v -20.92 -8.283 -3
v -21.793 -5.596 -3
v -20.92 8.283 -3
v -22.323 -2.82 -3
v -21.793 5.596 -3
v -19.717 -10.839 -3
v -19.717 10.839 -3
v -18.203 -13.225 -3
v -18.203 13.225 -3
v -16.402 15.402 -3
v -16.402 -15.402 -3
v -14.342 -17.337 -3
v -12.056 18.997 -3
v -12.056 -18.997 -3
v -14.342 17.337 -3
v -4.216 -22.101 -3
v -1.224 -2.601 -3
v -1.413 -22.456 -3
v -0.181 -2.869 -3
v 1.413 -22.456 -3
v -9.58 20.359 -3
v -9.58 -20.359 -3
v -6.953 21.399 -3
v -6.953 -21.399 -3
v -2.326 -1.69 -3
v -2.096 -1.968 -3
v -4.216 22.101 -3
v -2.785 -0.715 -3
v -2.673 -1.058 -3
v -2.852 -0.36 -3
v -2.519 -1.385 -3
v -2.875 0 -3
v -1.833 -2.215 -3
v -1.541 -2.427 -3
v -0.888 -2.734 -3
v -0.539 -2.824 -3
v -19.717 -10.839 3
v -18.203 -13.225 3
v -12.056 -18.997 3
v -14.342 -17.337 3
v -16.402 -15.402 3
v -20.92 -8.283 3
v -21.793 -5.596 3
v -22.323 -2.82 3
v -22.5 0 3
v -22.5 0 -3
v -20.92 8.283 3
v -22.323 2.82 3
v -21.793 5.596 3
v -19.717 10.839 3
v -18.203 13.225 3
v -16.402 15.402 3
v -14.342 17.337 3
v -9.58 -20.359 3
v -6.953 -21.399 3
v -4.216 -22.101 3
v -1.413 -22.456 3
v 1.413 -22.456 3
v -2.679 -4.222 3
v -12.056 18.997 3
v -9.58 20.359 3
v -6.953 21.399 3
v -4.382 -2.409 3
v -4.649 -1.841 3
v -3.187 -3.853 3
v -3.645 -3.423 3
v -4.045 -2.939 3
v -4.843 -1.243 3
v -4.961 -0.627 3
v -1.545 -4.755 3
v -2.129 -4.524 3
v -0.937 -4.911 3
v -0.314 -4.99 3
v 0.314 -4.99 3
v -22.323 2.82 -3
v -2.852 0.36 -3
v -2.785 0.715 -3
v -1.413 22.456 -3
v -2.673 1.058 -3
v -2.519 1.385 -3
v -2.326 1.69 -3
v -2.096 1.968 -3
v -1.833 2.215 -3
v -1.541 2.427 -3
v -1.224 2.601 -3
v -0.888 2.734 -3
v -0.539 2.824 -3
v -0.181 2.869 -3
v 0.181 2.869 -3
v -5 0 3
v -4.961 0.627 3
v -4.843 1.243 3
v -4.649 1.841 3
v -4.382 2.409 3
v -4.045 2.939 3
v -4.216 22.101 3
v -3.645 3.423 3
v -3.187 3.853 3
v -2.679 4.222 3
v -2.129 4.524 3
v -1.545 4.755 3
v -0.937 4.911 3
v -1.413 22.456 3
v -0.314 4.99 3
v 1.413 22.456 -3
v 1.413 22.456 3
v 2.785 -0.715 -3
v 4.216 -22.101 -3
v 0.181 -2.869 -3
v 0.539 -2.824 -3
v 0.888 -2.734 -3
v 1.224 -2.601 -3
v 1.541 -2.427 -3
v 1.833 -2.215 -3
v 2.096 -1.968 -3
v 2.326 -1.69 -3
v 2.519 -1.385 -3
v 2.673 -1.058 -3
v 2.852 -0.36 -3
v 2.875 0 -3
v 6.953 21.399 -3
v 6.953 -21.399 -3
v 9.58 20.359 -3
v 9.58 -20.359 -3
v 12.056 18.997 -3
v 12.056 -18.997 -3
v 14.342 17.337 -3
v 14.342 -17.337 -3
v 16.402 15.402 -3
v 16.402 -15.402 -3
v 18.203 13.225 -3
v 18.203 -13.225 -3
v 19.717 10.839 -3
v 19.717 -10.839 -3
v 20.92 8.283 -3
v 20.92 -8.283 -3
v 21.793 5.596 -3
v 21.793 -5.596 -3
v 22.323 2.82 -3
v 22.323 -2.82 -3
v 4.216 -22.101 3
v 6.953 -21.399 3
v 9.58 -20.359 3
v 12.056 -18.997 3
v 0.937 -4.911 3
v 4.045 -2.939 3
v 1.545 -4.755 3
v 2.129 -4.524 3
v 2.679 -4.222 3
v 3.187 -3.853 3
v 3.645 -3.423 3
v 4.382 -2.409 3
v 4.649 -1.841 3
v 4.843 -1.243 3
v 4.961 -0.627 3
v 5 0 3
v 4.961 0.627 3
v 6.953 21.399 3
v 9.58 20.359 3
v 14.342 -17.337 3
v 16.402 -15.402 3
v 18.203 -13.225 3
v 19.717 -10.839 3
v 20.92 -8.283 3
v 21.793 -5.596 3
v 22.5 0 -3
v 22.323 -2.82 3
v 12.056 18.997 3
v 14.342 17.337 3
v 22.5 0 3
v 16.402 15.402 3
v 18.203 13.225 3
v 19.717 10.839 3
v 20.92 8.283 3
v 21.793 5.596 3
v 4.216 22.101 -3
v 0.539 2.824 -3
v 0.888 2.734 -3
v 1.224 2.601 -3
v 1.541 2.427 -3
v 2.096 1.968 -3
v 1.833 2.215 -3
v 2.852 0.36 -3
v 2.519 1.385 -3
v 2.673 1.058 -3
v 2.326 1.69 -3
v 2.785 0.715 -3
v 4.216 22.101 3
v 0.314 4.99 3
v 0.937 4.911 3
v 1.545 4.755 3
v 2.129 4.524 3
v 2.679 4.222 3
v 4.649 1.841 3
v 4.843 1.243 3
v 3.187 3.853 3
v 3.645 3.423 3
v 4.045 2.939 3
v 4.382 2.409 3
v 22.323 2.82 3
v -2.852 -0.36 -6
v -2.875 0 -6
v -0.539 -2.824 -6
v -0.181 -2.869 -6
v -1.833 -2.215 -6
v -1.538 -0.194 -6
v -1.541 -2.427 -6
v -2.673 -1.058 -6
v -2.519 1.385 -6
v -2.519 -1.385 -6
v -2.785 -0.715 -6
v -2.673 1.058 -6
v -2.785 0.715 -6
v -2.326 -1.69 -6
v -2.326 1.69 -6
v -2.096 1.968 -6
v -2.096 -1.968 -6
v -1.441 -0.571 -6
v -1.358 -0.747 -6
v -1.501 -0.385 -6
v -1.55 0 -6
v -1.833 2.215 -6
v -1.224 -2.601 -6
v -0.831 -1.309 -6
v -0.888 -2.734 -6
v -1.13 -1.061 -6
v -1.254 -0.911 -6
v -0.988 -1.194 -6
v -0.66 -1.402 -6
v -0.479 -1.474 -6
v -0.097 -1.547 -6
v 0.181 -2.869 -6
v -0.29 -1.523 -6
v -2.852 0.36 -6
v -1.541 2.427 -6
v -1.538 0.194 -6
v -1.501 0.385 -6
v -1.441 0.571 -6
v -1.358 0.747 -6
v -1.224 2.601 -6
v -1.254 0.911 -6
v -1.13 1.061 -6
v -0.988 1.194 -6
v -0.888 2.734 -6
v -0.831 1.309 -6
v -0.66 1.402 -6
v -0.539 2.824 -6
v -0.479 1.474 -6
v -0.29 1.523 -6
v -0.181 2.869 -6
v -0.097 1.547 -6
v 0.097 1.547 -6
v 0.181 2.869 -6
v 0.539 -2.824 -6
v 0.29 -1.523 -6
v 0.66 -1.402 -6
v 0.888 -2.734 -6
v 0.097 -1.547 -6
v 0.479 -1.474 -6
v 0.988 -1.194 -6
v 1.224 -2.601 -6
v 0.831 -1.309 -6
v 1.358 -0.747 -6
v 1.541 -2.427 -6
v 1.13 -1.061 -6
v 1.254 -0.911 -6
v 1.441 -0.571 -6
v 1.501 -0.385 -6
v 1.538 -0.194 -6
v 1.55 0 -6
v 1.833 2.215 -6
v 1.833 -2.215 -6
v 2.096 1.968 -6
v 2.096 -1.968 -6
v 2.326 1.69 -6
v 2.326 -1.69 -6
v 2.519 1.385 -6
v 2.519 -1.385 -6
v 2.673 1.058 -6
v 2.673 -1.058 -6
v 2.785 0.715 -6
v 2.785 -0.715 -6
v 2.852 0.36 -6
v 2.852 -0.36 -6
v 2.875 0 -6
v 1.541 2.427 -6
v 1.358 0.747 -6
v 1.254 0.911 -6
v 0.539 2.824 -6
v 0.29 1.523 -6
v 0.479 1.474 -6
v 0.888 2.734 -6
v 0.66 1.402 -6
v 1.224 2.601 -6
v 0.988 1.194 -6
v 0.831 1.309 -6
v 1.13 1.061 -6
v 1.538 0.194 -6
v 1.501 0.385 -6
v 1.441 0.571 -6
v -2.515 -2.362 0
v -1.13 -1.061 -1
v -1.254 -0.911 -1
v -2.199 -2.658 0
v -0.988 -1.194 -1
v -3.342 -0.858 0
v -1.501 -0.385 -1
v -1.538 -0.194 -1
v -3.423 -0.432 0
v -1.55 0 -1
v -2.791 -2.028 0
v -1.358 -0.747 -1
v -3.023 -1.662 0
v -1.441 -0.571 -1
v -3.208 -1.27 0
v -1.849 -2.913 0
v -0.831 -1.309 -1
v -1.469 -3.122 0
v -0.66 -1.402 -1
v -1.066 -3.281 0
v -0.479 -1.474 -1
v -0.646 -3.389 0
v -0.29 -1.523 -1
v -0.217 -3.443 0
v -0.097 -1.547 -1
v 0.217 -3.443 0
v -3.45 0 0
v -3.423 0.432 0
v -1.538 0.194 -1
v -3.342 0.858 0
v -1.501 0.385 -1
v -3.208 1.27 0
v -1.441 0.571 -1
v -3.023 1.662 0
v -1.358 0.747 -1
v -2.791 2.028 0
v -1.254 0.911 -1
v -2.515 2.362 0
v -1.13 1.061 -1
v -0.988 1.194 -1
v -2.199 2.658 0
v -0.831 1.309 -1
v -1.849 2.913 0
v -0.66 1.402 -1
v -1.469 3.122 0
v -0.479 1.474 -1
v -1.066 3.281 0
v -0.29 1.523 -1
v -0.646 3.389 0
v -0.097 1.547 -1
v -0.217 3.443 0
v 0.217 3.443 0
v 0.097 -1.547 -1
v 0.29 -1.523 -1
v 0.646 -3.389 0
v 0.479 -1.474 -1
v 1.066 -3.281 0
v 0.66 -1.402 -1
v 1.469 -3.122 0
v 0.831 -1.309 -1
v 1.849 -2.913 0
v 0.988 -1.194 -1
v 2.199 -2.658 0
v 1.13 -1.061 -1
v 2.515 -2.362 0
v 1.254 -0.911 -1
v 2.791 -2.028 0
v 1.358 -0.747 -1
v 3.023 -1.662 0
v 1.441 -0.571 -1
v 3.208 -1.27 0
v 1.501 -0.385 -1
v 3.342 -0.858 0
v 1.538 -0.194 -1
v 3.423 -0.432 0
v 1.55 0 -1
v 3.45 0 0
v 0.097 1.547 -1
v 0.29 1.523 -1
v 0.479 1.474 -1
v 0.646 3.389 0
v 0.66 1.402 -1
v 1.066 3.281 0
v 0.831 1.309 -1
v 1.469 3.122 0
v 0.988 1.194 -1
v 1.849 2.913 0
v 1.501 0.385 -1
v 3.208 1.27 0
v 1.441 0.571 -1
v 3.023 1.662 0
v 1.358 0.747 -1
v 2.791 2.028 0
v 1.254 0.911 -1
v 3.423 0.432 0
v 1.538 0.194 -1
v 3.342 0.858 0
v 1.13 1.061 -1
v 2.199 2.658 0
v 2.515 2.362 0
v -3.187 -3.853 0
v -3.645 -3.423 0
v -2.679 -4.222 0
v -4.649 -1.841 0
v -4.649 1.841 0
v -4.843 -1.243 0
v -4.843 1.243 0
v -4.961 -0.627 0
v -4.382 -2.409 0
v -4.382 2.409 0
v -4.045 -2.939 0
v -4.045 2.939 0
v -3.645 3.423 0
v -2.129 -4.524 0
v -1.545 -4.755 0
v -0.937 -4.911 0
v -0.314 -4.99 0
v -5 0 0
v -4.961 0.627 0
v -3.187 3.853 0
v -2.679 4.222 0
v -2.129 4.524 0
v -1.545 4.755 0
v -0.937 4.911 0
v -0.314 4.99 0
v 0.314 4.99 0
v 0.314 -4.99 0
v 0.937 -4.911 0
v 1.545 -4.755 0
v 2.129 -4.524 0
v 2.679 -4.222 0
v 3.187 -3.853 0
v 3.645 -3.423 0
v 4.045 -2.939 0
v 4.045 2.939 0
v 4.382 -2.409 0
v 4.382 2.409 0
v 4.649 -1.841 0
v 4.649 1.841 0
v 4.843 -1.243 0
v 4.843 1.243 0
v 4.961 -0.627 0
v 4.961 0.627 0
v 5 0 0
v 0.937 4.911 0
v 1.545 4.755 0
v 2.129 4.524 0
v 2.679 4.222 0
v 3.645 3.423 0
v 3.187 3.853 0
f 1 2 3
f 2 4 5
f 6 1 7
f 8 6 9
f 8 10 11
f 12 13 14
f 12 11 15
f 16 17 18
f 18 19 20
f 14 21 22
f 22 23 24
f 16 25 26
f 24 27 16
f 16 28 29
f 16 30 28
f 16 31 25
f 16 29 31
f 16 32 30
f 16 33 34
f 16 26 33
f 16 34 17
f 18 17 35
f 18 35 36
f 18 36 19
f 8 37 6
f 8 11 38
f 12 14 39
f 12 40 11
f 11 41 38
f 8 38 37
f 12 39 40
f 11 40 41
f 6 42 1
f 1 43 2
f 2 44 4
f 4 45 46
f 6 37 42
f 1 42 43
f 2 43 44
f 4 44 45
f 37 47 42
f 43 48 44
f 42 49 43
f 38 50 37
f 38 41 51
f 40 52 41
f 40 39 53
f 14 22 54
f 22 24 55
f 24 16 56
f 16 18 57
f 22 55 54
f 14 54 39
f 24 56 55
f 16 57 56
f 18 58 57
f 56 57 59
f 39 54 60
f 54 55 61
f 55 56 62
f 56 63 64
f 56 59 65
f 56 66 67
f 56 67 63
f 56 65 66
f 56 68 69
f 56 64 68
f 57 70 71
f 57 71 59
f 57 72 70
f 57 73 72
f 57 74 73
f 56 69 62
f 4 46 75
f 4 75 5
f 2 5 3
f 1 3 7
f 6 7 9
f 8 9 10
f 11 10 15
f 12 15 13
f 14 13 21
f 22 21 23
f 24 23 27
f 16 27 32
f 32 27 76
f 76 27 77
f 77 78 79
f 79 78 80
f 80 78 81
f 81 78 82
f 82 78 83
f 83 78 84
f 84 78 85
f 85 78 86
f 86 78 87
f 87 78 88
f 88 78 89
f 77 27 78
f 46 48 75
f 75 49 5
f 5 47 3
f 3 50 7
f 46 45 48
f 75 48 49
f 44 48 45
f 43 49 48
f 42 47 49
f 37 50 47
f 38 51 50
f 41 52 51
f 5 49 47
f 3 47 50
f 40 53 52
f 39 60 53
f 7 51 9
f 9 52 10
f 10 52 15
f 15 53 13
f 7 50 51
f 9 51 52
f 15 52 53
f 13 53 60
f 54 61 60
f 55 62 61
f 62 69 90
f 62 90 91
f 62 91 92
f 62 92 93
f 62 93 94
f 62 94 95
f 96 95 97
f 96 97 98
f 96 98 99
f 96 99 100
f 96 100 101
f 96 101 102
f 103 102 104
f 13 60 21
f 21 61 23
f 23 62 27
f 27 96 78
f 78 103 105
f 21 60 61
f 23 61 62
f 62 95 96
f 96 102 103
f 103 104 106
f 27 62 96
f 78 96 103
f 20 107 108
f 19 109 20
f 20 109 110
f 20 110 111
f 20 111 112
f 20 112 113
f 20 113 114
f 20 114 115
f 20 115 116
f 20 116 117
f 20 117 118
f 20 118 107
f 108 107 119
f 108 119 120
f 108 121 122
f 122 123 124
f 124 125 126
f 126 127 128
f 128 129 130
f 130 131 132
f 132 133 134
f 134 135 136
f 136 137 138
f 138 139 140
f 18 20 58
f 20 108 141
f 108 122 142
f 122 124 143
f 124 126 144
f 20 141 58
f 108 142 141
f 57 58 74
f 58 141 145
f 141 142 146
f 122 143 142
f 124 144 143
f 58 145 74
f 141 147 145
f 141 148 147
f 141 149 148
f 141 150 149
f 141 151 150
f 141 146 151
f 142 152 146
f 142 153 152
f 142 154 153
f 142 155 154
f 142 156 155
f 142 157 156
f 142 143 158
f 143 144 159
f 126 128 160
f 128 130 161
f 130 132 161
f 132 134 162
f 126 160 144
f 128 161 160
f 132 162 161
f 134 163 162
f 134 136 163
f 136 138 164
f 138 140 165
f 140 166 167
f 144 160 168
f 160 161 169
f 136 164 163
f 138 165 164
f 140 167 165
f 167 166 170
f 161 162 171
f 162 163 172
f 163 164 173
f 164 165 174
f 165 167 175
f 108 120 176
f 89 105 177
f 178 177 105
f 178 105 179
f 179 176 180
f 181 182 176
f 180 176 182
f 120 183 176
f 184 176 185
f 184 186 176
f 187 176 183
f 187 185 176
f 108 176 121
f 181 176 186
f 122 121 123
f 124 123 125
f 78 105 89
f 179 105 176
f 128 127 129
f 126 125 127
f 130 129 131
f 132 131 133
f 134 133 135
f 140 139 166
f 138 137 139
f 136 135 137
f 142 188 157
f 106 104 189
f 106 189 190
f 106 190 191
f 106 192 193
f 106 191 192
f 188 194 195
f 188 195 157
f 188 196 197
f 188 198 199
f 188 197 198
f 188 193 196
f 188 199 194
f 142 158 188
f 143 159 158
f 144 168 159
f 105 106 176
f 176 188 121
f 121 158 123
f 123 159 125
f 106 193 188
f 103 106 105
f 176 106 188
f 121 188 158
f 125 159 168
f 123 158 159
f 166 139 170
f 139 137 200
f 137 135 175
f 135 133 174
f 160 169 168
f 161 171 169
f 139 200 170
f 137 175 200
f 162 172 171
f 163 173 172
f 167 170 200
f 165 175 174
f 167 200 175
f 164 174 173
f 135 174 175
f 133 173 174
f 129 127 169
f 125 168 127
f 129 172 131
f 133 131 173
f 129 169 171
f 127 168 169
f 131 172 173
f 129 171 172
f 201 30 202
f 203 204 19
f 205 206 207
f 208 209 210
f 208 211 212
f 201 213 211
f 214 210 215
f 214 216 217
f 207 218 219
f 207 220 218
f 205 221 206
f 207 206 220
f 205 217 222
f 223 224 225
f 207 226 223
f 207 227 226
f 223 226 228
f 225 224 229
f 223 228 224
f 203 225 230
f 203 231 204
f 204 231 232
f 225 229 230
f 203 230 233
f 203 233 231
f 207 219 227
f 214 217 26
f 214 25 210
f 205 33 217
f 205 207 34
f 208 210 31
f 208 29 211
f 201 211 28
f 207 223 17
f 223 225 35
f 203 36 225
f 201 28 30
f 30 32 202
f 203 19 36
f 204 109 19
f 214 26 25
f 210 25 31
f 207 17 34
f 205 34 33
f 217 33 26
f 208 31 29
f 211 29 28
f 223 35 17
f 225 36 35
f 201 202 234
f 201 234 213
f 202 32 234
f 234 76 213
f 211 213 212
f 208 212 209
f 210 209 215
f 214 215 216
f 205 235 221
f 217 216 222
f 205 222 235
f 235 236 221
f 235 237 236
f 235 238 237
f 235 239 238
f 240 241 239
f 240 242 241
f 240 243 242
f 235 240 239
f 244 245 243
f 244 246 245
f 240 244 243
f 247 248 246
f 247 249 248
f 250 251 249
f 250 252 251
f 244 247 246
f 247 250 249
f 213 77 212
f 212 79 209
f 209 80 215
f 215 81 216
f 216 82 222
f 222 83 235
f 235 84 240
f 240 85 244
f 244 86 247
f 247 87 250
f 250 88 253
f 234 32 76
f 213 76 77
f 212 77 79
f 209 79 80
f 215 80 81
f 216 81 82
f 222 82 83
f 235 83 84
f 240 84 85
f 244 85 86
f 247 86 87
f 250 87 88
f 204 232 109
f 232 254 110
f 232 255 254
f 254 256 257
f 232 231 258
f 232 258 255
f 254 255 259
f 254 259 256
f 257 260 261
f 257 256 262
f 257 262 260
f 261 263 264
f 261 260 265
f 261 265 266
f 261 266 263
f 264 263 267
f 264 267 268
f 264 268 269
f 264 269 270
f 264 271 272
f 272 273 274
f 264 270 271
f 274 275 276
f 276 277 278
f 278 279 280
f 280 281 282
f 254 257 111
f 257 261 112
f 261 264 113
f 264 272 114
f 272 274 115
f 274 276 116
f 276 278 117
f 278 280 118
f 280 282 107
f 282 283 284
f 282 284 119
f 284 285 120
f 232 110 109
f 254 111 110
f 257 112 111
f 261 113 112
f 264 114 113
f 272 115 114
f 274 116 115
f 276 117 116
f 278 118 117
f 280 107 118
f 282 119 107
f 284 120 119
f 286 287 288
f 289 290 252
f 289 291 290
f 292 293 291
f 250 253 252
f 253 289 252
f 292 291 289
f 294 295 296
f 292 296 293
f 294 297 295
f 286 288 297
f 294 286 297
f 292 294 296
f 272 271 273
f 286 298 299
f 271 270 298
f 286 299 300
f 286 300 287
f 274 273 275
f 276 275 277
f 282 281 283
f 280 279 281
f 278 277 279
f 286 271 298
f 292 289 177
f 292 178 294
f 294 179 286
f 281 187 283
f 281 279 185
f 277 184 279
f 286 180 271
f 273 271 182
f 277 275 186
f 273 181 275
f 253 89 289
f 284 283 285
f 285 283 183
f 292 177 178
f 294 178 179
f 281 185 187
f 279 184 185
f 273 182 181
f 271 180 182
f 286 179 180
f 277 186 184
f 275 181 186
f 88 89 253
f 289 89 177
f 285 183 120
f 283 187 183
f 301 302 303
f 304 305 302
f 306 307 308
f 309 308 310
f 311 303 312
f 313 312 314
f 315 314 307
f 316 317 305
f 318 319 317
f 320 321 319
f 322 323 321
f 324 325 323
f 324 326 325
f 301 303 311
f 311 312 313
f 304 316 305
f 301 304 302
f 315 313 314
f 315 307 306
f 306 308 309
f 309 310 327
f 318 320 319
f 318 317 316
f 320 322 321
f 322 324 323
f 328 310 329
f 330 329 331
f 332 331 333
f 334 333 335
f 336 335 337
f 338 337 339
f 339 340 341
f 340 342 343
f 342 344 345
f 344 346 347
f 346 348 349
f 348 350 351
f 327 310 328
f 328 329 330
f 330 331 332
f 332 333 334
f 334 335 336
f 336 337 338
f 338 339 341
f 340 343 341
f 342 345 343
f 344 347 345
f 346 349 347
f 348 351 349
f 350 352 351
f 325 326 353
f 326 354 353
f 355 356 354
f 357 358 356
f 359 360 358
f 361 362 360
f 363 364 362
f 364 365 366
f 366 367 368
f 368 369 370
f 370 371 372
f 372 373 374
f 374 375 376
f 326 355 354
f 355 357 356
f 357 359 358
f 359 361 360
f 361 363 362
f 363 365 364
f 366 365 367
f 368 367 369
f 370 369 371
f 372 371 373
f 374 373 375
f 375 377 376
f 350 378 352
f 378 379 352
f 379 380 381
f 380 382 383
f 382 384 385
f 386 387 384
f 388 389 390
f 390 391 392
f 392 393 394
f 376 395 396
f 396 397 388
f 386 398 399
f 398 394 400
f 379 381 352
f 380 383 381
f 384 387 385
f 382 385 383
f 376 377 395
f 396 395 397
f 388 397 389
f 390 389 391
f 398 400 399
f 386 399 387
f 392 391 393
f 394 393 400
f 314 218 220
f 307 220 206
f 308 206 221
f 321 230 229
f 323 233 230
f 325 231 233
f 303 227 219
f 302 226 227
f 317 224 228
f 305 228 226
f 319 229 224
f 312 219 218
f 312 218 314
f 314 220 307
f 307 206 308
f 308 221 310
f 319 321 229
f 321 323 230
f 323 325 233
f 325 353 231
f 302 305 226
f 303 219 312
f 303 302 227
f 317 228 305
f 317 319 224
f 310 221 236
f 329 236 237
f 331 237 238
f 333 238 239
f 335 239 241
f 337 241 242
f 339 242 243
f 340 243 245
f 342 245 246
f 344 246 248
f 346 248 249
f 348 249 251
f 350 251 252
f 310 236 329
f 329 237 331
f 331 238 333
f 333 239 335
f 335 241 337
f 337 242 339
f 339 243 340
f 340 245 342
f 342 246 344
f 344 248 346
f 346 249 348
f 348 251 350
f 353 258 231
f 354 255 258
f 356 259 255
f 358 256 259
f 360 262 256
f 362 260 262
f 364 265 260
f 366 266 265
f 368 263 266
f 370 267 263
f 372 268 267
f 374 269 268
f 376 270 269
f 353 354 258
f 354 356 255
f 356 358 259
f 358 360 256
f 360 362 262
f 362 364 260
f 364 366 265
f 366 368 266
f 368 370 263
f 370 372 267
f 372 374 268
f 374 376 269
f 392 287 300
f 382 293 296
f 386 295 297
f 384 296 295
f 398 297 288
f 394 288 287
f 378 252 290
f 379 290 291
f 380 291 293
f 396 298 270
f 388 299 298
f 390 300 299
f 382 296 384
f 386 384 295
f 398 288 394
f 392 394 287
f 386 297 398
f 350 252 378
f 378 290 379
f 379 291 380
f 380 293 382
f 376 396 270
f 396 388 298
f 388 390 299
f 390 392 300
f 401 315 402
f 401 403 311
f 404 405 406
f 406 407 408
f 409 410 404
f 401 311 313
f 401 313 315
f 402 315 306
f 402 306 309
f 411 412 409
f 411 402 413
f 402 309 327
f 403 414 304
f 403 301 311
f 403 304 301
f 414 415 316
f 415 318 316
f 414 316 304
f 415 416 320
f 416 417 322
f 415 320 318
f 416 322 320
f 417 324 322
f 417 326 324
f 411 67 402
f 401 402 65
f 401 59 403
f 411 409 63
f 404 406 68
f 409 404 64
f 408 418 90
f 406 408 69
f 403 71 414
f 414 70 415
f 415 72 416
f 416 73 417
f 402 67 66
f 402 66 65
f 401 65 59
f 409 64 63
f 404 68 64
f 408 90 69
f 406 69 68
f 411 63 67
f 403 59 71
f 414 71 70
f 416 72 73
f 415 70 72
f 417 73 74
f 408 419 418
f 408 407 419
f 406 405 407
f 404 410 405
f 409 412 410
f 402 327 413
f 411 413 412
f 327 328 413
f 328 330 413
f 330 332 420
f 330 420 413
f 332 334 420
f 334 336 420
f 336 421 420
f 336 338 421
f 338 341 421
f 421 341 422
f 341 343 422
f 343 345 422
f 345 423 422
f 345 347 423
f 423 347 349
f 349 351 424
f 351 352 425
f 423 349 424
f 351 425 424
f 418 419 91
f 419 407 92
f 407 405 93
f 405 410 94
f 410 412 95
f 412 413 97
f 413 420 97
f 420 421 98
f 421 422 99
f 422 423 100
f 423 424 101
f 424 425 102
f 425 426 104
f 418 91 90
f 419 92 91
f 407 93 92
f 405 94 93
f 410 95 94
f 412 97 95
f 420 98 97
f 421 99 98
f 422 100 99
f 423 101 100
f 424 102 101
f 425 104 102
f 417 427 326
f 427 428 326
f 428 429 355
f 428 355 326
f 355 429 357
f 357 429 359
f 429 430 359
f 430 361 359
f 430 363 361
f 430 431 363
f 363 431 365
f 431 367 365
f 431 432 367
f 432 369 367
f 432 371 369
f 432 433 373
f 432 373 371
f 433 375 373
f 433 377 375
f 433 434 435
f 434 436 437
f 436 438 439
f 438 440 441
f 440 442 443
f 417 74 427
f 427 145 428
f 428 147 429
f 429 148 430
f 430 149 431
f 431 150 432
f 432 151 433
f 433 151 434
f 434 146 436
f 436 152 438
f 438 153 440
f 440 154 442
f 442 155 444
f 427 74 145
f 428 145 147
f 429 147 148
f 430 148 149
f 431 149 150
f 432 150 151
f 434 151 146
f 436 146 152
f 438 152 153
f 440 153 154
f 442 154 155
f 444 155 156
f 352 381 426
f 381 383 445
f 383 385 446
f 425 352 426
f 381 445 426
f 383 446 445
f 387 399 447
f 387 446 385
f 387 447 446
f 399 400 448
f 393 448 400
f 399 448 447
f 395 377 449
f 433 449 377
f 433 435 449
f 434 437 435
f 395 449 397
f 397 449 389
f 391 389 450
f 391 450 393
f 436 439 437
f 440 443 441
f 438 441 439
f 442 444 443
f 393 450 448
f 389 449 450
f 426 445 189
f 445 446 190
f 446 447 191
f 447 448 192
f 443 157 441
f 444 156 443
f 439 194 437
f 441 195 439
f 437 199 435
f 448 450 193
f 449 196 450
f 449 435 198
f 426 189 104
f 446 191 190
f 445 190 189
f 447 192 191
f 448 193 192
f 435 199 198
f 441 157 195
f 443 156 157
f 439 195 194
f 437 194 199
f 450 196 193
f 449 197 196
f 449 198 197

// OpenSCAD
$fn = 50;


difference() {
	union() {
		translate(v = [0, 0, -3.0000000000]) {
			cylinder(h = 6, r = 22.5000000000);
		}
		#translate(v = [0, 0, -6.0000000000]) {
			cylinder(h = 6, r = 2.8750000000);
		}
	}
	union() {
		translate(v = [0, 0, 0]) {
			rotate(a = [0, 0, 0]) {
				difference() {
					union() {
						translate(v = [0, 0, -6.0000000000]) {
							cylinder(h = 6, r = 1.2500000000);
						}
						translate(v = [0, 0, -1.0000000000]) {
							cylinder(h = 1.0000000000, r1 = 1.5500000000, r2 = 3.4500000000);
						}
						translate(v = [0, 0, -6.0000000000]) {
							cylinder(h = 6, r = 1.5500000000);
						}
						translate(v = [0, 0, -6.0000000000]) {
							cylinder(h = 6, r = 1.2500000000);
						}
					}
					union();
				}
			}
		}
		#cylinder(h = 3, r = 5.0000000000);
	}
}
